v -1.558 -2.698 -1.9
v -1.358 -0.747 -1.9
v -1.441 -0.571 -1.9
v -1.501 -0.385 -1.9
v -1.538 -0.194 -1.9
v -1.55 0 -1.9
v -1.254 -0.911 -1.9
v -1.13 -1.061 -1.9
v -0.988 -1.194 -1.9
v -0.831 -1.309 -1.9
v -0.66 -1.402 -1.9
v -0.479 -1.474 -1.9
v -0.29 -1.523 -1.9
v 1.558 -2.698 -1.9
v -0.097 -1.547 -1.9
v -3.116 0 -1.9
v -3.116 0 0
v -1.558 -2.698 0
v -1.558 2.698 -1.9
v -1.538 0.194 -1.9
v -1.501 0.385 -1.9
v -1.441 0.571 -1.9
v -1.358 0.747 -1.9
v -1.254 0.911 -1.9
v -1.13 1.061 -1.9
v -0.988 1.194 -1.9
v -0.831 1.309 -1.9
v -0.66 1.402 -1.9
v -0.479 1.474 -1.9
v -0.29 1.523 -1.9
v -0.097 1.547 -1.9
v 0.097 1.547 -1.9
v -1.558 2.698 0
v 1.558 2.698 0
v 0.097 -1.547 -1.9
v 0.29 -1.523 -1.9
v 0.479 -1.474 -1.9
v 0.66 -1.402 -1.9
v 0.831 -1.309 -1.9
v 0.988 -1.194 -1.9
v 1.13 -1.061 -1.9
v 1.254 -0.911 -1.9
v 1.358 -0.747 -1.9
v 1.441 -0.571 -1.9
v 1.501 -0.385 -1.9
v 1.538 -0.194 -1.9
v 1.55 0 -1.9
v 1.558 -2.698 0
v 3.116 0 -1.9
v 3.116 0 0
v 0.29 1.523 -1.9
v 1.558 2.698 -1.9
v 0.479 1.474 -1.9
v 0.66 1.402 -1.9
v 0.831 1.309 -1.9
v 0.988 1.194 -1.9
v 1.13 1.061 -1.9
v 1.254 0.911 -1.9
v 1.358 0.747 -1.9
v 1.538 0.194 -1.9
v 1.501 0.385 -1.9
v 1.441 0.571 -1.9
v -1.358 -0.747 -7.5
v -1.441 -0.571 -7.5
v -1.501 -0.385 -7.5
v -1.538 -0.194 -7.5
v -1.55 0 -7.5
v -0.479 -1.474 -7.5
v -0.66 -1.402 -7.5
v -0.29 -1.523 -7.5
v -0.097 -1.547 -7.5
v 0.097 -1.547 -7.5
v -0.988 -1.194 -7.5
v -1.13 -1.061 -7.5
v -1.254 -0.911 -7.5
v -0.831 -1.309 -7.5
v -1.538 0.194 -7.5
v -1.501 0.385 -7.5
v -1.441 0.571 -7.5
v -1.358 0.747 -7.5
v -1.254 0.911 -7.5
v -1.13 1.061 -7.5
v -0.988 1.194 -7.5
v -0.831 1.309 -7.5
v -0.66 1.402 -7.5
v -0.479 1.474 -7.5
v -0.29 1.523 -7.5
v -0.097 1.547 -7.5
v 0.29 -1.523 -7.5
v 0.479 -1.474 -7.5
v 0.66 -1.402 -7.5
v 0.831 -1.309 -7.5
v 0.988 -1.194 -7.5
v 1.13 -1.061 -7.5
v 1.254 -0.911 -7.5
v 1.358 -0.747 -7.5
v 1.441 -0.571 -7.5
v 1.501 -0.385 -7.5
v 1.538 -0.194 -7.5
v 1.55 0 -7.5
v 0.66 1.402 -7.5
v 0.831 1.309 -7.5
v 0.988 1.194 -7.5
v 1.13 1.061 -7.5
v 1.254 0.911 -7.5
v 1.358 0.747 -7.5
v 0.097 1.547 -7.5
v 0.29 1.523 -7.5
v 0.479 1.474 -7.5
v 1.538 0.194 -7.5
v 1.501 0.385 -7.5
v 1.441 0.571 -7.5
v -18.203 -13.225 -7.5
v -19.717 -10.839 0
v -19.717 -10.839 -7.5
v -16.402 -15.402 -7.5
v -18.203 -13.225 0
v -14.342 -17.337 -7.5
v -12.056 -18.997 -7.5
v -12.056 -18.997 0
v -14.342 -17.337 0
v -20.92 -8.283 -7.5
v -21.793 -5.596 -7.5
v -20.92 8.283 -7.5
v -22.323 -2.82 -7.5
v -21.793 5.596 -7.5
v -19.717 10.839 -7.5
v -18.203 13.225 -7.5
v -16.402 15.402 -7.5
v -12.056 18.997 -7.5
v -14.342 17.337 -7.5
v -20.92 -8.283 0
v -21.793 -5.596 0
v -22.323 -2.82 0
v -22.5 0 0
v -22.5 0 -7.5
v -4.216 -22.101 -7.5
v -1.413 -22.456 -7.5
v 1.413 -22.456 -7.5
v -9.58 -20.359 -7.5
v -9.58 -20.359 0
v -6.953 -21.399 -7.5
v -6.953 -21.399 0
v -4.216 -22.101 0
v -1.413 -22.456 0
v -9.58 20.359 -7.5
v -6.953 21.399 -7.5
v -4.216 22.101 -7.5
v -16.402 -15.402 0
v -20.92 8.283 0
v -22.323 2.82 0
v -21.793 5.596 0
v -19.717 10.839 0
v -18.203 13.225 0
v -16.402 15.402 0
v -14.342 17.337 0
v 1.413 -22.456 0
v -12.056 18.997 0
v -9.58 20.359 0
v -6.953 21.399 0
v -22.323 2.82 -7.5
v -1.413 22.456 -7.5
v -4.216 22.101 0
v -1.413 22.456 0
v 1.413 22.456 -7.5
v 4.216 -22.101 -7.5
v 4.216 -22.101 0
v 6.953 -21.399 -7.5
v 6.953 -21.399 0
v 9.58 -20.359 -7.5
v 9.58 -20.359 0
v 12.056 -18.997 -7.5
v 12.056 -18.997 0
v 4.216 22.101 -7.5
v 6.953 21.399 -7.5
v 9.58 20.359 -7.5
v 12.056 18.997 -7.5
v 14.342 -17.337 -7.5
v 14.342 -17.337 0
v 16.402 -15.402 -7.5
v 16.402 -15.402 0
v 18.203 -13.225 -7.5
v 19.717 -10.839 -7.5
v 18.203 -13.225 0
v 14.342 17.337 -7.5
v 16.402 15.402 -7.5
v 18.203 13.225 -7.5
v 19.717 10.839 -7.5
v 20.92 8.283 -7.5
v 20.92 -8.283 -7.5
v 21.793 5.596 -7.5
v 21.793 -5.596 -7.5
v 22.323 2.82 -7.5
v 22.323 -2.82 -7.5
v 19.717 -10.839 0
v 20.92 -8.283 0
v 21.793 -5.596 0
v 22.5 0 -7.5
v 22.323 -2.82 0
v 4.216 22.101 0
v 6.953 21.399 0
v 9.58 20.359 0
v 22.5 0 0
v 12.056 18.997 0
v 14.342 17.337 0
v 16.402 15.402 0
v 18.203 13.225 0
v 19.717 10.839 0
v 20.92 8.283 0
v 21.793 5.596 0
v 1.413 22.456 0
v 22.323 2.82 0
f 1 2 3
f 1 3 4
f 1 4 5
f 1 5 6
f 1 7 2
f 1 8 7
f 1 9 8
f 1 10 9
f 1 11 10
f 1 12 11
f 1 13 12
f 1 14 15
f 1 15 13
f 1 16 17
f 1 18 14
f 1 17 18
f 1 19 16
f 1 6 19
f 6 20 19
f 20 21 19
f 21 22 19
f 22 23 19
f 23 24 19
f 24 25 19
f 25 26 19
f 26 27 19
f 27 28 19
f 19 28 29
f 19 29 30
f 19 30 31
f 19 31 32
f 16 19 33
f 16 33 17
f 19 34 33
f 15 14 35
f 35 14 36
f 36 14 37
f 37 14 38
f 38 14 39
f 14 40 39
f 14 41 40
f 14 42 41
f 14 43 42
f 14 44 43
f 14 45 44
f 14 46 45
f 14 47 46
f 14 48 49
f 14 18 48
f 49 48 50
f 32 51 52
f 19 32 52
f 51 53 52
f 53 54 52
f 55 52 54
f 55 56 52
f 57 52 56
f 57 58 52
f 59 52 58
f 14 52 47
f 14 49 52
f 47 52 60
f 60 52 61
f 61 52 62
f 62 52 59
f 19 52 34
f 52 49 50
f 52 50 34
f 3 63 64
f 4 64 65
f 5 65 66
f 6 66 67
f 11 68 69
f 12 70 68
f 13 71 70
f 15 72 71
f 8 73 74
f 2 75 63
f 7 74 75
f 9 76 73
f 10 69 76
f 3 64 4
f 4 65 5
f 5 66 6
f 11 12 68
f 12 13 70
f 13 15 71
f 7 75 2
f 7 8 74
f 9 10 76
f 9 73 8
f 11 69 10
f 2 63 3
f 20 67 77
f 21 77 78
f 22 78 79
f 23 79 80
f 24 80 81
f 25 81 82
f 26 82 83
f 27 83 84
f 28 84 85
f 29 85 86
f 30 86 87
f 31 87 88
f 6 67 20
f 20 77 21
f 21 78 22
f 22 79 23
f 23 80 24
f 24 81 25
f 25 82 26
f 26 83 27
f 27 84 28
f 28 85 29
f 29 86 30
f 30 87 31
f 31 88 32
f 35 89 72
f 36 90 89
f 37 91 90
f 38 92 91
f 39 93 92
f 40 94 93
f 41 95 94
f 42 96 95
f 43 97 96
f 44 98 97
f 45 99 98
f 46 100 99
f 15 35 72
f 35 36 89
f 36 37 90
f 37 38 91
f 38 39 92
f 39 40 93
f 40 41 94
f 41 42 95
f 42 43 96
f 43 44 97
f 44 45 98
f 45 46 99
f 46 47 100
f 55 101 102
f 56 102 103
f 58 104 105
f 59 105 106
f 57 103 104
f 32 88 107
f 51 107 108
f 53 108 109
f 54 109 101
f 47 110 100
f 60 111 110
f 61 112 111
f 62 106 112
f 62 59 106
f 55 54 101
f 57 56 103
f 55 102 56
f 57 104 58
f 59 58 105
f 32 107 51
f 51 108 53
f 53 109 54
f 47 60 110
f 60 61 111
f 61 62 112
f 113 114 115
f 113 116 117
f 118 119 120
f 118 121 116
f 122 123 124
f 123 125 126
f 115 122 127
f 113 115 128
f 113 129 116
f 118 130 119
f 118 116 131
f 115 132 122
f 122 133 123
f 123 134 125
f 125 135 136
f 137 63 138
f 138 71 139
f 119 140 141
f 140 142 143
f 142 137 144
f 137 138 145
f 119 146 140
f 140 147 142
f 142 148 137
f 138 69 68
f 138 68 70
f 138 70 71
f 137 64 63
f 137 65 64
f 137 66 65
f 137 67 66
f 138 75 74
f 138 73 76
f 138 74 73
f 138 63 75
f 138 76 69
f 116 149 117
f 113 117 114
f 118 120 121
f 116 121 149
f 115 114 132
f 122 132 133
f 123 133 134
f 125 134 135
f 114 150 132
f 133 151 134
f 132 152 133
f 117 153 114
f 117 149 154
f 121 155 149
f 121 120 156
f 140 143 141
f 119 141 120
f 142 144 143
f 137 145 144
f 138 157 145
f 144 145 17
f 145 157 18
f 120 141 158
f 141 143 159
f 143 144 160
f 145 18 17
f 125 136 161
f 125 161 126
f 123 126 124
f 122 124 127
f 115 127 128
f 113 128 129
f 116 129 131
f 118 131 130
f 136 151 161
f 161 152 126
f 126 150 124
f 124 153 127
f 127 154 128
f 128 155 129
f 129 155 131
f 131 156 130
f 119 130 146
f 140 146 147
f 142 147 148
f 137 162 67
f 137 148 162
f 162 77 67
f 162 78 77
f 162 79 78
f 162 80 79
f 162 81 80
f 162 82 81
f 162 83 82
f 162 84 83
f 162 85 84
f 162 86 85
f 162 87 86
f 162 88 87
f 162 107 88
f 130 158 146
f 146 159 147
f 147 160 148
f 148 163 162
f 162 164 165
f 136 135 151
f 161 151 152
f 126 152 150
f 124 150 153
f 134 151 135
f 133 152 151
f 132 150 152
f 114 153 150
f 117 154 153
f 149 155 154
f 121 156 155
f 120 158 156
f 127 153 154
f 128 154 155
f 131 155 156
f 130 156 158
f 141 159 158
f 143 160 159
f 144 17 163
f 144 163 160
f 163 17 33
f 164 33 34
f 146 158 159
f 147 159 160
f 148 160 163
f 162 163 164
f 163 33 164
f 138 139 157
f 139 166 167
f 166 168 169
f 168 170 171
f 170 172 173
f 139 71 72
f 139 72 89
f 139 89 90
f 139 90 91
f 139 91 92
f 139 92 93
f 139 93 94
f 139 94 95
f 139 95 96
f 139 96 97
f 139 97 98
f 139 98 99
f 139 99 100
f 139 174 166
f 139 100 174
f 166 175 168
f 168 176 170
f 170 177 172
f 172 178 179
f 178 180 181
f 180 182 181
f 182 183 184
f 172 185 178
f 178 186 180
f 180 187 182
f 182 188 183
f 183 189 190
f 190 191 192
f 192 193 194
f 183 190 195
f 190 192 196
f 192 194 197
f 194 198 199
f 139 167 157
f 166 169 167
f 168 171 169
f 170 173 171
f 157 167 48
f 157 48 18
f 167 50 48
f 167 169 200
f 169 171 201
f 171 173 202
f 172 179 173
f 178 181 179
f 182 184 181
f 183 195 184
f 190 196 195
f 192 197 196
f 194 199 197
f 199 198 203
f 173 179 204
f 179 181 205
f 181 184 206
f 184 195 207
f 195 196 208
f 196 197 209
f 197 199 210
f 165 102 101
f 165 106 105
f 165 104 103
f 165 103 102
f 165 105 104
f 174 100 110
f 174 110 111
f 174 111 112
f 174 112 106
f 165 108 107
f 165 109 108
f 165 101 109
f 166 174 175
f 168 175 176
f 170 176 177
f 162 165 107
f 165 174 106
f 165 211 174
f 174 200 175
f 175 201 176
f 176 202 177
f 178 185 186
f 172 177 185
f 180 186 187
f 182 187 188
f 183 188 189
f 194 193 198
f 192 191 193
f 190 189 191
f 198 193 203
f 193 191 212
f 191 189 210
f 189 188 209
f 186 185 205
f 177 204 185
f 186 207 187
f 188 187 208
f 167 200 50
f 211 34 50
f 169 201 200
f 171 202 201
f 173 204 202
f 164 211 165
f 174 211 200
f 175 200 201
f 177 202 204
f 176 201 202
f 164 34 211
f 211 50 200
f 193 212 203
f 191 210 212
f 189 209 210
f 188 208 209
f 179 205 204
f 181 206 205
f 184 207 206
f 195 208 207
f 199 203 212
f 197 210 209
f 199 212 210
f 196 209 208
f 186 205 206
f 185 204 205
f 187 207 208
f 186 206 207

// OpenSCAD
$fn = 50;

difference() {
	union() {
		translate(v = [0, 0, -7.5]) {
			cylinder(h = 7.5, r = 22.5);
		}
	}
	union() {
		translate(v = [0, 0, 0]) {
			rotate(a = [0, 0, 0]) {
				difference() {
					union() {
						translate(v = [0, 0, -1.9]) {
							linear_extrude(height = 1.9) {
								polygon(points = [[3.1158, 0.0], [1.5579000000000005, 2.698361953111554], [-1.5578999999999994, 2.6983619531115544], [-3.1158, 3.815754496783323e-16], [-1.5579000000000014, -2.6983619531115535], [1.557899999999998, -2.6983619531115552]]);
							}
						}
					}
					union();
				}
			}
		}
		#translate(v = [0, 0, -100.0]) {
			cylinder(h = 200, r = 1.55);
		}
	}
}
